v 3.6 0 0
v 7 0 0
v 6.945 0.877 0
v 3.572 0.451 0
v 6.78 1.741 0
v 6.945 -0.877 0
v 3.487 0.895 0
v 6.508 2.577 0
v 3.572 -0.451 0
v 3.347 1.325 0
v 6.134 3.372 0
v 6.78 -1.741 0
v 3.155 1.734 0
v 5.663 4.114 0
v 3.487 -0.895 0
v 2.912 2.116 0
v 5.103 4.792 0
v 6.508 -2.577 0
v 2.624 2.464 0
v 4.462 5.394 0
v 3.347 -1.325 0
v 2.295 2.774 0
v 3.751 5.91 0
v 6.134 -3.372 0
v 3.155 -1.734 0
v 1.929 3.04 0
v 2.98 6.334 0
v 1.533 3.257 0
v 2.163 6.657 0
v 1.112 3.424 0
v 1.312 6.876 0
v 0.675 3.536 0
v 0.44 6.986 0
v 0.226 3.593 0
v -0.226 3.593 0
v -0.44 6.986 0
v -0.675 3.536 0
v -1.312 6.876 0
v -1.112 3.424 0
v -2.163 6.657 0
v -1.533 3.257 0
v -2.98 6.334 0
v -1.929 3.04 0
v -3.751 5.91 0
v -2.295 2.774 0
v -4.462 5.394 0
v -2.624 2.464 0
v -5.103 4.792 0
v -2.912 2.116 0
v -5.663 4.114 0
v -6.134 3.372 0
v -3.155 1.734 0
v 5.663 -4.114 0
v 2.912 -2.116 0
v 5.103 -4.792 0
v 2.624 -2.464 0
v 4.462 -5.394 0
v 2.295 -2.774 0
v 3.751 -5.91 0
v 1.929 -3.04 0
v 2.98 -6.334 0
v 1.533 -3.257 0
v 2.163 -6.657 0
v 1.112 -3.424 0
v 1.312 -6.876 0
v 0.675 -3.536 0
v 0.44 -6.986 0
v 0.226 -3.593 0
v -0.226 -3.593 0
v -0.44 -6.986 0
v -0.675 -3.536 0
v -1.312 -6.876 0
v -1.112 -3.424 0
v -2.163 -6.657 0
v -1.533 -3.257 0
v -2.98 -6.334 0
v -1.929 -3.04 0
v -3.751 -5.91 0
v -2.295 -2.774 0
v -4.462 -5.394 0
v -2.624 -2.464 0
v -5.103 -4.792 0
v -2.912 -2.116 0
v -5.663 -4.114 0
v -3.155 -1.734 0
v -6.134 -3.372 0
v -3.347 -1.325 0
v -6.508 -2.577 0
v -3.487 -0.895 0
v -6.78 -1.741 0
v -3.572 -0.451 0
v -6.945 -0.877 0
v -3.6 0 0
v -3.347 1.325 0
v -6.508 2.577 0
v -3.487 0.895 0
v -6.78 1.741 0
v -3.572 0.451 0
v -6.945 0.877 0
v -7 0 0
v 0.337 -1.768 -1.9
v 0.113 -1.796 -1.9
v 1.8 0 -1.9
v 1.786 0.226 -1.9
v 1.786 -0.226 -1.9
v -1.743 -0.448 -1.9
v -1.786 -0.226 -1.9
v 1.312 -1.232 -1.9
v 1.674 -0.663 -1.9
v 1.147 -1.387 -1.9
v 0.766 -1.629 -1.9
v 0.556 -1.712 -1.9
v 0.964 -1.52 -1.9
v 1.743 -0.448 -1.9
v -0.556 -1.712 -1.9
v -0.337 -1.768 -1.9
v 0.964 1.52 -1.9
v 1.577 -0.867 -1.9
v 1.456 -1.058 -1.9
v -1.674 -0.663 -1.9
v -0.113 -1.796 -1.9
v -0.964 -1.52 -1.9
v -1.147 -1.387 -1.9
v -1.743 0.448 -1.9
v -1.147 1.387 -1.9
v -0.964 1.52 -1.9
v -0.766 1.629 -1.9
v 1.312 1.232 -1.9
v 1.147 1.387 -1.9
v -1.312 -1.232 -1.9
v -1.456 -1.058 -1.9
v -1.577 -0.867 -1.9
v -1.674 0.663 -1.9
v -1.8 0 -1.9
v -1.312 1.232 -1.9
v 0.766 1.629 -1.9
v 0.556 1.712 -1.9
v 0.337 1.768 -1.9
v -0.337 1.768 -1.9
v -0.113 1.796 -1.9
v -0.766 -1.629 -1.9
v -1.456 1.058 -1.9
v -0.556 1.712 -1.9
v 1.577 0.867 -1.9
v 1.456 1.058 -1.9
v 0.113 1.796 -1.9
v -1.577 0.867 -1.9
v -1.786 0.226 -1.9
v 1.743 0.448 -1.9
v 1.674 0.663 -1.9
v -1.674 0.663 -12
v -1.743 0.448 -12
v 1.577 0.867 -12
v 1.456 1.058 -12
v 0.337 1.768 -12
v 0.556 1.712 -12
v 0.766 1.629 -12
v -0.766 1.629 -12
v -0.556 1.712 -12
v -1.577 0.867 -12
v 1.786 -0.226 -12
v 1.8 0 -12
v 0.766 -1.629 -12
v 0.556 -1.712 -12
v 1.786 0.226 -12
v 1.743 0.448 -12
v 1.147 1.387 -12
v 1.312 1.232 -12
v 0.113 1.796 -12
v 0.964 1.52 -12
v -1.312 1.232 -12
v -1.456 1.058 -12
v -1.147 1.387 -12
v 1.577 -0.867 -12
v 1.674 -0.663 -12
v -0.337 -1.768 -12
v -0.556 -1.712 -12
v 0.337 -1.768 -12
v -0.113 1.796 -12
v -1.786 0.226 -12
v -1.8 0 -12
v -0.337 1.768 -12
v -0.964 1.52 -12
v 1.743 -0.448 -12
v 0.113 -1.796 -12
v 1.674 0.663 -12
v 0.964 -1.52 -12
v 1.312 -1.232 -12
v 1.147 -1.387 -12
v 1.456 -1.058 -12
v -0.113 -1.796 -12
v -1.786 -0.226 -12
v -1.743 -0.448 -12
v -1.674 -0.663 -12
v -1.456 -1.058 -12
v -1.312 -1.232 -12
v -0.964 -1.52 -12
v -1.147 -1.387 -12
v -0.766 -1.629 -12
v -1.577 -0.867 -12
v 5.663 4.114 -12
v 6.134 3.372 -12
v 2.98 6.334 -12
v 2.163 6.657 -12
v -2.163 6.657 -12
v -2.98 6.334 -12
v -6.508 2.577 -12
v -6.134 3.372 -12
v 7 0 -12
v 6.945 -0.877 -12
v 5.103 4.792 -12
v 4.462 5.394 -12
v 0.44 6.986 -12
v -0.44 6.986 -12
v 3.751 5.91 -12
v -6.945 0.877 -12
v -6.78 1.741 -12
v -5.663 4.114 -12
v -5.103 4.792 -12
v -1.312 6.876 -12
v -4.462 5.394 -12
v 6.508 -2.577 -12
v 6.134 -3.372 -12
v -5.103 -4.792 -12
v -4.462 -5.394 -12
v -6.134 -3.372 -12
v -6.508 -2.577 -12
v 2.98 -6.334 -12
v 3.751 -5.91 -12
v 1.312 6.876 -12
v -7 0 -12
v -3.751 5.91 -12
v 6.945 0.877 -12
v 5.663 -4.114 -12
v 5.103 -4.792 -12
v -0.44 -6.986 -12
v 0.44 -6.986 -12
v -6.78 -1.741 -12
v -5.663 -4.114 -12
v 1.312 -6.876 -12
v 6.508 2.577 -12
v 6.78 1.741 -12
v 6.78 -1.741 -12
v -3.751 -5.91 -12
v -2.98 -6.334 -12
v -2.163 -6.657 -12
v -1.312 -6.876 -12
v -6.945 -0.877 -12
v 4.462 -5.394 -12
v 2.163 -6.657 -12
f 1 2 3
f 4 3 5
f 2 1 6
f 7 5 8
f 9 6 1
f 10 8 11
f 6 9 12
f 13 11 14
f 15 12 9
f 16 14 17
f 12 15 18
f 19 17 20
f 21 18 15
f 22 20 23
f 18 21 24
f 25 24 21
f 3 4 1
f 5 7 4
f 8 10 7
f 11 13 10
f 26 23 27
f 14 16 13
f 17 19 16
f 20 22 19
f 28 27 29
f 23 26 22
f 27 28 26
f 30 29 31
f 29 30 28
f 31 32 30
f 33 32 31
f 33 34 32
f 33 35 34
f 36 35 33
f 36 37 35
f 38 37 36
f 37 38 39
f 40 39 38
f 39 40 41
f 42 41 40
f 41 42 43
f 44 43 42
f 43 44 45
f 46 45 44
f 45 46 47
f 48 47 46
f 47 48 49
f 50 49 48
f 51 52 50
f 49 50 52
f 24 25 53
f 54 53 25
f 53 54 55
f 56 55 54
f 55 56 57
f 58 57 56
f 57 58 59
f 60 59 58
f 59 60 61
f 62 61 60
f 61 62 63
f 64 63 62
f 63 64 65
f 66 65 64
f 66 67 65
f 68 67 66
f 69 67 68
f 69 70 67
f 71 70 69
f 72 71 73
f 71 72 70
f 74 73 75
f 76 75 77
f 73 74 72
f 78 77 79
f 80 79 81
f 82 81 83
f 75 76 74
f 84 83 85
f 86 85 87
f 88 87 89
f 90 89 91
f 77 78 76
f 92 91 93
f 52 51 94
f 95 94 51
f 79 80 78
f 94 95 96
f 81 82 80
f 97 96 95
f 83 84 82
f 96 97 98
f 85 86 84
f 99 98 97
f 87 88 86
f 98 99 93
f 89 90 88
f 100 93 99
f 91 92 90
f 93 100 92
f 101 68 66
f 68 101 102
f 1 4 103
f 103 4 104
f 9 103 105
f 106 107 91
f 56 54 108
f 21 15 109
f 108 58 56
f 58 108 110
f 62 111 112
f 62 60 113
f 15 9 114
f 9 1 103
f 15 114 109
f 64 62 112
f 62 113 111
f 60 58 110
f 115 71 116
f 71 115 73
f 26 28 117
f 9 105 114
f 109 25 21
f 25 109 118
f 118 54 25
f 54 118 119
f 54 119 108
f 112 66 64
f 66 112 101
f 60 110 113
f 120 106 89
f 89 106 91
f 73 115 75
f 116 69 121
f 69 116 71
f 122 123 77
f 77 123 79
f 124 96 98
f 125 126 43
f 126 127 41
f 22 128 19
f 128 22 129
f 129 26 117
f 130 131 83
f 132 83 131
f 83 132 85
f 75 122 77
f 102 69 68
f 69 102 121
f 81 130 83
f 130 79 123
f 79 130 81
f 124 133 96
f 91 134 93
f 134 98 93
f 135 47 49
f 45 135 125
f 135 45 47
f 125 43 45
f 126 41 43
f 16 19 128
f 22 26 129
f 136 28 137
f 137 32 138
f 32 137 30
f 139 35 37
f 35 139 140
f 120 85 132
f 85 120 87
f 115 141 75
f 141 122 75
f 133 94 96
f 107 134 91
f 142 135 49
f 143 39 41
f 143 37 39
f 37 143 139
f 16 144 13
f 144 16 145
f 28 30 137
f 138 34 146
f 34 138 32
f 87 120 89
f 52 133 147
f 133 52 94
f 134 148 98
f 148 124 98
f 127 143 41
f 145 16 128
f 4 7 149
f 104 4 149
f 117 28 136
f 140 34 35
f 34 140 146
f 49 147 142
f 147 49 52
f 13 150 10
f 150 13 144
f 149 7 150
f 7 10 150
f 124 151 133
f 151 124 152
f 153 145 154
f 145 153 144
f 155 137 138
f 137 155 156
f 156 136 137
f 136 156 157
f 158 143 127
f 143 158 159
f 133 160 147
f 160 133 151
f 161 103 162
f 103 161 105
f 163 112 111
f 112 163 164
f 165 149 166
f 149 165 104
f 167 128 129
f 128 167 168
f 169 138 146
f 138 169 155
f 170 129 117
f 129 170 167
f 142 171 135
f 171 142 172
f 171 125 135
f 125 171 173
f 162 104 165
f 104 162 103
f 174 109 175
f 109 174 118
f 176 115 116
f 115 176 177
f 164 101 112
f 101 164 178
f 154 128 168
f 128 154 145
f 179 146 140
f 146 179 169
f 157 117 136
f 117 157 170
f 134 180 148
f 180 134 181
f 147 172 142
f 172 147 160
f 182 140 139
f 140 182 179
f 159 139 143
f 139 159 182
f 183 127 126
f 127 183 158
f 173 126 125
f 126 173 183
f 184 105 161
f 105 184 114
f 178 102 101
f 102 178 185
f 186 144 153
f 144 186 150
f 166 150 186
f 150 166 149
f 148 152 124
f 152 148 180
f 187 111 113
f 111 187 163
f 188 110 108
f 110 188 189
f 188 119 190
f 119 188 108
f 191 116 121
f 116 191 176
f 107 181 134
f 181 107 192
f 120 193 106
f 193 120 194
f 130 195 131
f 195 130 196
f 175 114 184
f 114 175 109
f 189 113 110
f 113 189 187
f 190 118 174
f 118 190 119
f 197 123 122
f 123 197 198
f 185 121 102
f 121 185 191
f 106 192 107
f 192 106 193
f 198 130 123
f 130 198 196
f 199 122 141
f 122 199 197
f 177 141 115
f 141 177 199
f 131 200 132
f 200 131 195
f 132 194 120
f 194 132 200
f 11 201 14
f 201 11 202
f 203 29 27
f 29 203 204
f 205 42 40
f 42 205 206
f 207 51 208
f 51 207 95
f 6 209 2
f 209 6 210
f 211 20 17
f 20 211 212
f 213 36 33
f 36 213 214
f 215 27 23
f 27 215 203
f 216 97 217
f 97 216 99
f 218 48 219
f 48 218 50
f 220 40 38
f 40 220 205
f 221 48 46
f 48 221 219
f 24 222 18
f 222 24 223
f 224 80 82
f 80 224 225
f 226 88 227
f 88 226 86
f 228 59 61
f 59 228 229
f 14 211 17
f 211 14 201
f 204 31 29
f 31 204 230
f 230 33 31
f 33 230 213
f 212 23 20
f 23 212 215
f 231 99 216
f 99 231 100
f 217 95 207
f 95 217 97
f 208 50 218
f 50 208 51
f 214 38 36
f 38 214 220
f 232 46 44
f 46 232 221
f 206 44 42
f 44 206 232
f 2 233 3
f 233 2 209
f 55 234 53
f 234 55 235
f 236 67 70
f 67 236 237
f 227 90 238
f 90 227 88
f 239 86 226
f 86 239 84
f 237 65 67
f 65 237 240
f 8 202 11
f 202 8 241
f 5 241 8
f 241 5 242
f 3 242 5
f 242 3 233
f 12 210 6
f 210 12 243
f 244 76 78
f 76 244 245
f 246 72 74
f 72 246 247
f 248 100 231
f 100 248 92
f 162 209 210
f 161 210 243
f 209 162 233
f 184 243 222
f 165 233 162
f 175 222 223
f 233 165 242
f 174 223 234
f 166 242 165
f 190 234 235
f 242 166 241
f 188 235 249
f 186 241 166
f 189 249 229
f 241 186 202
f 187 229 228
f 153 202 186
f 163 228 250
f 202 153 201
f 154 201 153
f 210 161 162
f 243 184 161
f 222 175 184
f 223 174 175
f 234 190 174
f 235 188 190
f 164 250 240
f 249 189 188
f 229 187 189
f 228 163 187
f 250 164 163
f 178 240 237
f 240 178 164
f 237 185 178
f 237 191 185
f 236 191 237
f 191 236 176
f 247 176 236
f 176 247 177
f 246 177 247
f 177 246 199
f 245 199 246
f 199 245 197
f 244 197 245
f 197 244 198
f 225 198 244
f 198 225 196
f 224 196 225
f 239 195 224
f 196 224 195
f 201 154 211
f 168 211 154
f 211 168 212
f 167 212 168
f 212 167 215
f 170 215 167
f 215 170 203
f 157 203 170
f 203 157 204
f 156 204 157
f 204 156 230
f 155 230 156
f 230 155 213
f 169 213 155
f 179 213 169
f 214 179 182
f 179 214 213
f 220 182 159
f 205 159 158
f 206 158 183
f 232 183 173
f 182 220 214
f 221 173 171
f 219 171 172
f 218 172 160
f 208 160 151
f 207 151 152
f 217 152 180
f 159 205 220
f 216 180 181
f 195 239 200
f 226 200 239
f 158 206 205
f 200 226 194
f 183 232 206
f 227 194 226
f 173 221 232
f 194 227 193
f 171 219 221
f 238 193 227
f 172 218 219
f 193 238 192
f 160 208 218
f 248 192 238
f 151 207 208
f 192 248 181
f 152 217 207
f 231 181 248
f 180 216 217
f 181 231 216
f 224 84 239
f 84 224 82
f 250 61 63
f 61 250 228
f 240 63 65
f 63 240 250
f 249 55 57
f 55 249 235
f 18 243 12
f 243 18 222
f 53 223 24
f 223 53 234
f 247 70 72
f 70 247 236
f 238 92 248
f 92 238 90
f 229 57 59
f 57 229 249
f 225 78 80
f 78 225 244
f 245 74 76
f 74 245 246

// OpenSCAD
$fn = 50;


difference() {
	union() {
		translate(v = [0, 0, -12.0000000000]) {
			cylinder(h = 12, r = 7.0000000000);
		}
	}
	union() {
		translate(v = [0, 0, 0]) {
			rotate(a = [0, 0, 0]) {
				difference() {
					union() {
						translate(v = [0, 0, -15.0000000000]) {
							cylinder(h = 15, r = 1.5000000000);
						}
						translate(v = [0, 0, -1.9000000000]) {
							cylinder(h = 1.9000000000, r1 = 1.8000000000, r2 = 3.6000000000);
						}
						translate(v = [0, 0, -15.0000000000]) {
							cylinder(h = 15, r = 1.8000000000);
						}
						translate(v = [0, 0, -15.0000000000]) {
							cylinder(h = 15, r = 1.5000000000);
						}
					}
					union();
				}
			}
		}
	}
}
